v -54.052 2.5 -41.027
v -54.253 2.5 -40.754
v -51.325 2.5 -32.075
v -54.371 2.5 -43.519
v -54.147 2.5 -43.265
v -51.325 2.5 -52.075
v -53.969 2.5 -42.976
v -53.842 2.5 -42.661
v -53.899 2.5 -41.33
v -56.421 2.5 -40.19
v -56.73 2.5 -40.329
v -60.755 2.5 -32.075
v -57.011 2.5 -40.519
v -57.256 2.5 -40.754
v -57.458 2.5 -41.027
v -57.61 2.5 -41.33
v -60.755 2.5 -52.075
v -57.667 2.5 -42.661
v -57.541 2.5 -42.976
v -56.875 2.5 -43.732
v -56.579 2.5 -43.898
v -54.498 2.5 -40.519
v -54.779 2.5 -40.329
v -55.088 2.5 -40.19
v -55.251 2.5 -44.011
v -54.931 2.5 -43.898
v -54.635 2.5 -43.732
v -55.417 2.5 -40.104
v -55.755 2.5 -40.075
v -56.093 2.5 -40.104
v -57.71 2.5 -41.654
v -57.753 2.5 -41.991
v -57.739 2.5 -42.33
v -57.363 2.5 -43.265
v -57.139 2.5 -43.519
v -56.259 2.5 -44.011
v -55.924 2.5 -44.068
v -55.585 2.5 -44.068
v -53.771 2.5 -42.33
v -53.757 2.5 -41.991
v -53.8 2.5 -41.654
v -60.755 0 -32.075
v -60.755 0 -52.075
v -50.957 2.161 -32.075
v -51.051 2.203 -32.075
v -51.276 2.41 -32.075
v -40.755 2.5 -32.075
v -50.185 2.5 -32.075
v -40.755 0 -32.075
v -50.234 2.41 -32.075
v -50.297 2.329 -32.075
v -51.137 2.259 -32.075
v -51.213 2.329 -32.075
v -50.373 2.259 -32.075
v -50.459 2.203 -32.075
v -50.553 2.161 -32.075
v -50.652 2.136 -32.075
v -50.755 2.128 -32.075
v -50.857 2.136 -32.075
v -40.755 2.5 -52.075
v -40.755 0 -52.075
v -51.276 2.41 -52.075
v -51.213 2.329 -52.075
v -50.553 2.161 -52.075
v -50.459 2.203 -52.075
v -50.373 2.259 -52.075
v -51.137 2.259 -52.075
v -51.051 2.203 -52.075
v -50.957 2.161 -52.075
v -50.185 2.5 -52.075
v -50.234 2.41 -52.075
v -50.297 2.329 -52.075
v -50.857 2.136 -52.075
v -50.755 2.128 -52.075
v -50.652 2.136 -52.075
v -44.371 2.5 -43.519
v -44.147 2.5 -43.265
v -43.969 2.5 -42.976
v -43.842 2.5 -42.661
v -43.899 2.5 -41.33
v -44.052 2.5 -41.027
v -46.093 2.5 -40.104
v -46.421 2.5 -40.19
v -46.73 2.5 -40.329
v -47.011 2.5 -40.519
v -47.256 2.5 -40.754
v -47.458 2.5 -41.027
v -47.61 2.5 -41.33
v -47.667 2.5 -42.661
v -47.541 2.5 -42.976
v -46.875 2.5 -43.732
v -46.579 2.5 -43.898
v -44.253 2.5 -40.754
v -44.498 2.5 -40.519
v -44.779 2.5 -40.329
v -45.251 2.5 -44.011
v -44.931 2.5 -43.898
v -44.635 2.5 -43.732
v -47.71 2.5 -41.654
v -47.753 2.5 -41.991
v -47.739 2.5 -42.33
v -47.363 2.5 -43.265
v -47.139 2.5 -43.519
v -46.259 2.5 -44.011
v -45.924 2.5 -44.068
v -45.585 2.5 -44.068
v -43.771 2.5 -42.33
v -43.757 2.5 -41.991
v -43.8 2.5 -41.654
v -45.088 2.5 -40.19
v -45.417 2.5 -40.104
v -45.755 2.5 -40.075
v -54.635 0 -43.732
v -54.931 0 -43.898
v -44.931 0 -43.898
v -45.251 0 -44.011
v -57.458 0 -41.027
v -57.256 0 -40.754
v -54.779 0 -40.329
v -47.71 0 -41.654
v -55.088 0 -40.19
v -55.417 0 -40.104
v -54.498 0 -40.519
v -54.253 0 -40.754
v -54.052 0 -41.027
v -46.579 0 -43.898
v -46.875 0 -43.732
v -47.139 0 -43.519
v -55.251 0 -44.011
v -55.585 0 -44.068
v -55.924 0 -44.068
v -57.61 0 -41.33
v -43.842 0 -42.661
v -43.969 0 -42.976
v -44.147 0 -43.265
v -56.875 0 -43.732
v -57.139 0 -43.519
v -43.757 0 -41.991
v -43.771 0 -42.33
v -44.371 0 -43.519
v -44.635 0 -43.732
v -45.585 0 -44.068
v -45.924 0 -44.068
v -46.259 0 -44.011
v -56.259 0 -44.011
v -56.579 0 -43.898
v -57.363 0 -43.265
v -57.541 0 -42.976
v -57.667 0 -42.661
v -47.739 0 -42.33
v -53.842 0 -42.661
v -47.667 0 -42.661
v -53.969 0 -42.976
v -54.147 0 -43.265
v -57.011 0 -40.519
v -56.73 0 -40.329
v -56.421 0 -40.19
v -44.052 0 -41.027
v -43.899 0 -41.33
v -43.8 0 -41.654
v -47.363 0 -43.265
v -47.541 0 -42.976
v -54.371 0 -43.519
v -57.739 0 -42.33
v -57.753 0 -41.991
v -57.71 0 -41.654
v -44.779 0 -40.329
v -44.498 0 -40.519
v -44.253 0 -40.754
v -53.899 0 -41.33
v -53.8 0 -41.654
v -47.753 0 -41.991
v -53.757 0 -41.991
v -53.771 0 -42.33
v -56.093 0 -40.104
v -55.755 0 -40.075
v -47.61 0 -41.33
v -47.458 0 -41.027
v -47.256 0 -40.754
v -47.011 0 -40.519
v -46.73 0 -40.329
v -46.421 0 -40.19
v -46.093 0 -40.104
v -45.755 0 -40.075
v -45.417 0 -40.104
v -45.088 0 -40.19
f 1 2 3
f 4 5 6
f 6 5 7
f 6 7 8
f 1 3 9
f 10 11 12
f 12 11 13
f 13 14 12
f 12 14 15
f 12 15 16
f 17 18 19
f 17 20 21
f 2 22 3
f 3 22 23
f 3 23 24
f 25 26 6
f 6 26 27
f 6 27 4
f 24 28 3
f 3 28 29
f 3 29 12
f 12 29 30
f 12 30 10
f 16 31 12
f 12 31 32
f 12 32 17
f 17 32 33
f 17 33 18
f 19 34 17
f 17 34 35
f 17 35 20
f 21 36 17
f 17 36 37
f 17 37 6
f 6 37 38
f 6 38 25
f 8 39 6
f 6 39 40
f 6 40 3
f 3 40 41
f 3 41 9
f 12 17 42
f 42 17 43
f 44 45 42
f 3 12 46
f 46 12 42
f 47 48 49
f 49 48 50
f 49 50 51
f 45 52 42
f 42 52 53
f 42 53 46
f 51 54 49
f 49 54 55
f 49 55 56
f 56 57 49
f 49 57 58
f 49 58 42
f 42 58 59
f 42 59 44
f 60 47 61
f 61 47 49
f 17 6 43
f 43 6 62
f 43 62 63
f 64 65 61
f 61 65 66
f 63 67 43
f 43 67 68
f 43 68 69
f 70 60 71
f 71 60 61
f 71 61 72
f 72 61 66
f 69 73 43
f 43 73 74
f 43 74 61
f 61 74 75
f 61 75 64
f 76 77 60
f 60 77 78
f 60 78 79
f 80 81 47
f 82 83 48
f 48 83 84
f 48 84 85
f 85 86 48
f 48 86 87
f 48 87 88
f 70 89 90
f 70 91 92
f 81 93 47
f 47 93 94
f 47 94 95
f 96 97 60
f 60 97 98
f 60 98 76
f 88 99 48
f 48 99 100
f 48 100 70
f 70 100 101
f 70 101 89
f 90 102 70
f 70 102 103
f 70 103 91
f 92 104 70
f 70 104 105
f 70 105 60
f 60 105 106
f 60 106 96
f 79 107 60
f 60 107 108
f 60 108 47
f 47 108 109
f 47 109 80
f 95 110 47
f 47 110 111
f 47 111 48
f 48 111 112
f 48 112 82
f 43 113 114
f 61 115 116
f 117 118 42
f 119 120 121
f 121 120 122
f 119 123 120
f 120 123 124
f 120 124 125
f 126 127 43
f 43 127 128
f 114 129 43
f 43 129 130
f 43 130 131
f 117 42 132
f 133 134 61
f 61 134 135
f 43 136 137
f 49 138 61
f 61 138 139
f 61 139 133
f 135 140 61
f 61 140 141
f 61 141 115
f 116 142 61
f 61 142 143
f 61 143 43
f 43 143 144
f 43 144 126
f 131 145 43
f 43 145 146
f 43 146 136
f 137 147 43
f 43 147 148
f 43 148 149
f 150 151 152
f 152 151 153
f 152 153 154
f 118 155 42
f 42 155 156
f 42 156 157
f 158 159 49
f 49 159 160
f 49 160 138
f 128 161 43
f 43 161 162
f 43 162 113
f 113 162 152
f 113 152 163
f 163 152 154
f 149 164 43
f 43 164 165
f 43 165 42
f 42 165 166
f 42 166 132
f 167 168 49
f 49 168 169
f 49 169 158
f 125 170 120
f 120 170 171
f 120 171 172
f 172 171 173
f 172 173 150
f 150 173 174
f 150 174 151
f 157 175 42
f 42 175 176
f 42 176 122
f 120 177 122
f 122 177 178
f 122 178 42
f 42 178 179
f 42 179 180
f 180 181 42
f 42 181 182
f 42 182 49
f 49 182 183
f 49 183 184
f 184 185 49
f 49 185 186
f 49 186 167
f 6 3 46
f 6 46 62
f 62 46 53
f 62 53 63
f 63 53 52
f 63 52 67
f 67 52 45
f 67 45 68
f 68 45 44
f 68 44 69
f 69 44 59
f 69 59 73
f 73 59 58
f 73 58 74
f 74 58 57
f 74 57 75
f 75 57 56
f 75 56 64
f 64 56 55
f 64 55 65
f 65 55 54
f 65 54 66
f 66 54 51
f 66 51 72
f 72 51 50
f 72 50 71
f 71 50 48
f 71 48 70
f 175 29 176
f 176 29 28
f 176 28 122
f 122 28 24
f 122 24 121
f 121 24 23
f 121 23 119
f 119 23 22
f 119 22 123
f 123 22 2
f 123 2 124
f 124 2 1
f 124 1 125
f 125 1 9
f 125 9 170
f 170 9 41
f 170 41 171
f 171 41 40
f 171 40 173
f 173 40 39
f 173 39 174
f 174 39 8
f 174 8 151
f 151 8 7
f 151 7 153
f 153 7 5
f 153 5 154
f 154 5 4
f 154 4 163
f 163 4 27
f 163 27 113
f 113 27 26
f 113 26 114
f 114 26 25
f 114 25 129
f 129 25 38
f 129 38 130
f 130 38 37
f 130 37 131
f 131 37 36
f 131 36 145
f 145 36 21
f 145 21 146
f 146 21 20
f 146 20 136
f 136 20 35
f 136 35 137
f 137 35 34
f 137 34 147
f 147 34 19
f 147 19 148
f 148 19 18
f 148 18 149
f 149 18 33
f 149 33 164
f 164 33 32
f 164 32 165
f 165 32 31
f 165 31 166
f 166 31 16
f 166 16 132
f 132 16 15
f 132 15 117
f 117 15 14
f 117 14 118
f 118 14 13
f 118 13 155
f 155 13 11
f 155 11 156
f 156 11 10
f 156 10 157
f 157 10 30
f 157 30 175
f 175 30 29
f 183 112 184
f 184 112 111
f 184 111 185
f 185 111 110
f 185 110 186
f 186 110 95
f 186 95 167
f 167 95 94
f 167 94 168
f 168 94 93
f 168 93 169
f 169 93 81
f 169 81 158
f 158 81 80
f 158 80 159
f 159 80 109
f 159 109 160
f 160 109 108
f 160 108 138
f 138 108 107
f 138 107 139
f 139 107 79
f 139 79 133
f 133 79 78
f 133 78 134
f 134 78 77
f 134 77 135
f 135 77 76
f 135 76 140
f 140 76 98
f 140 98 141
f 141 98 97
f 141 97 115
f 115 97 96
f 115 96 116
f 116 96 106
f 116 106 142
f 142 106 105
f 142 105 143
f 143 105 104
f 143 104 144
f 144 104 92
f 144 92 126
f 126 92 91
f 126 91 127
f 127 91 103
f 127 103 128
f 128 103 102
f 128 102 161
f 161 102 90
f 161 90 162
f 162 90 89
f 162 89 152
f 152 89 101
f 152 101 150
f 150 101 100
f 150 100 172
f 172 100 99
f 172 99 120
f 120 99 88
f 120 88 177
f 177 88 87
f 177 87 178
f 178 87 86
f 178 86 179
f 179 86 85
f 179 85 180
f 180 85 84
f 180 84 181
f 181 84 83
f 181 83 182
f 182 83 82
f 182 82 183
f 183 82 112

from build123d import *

# Parameters (mm, degrees)
SKETCH1_W           = 20
SKETCH1_H           = 20
BOSS_EXTRUDE1_DEPTH = 2.5
SKETCH2_R           = 0.6223
CUT_EXTRUDE1_DEPTH  = 21
SKETCH3_R           = 2
CUT_EXTRUDE2_DEPTH  = 3.5


with BuildPart() as part:
    # Sketch1 → Boss-Extrude1 (new body)
    with BuildSketch(Plane(origin=(0, 0, 0), x_dir=(1, 0, 0), z_dir=(0, 1, 0))):
        with Locations((-50.754716981, 42.075471698)):
            Rectangle(SKETCH1_W, SKETCH1_H)
    extrude(amount=BOSS_EXTRUDE1_DEPTH)

    # Sketch2 → Cut-Extrude1 (cut, through all)
    with BuildSketch(Plane.XY.offset(-32.075471698)):
        with Locations((-50.754716981, 2.75)):
            Circle(SKETCH2_R)
    extrude(amount=-CUT_EXTRUDE1_DEPTH, mode=Mode.SUBTRACT)

    # Sketch3 → Cut-Extrude2 (cut, through all)
    with BuildSketch(Plane(origin=(0, 2.5, 0), x_dir=(1, 0, 0), z_dir=(0, 1, 0))):
        with Locations((-55.754716981, 42.075471698)):
            Circle(SKETCH3_R)
        with Locations((-45.754716981, 42.075471698)):
            Circle(SKETCH3_R)
    extrude(amount=-CUT_EXTRUDE2_DEPTH, mode=Mode.SUBTRACT)


solid = part.part
